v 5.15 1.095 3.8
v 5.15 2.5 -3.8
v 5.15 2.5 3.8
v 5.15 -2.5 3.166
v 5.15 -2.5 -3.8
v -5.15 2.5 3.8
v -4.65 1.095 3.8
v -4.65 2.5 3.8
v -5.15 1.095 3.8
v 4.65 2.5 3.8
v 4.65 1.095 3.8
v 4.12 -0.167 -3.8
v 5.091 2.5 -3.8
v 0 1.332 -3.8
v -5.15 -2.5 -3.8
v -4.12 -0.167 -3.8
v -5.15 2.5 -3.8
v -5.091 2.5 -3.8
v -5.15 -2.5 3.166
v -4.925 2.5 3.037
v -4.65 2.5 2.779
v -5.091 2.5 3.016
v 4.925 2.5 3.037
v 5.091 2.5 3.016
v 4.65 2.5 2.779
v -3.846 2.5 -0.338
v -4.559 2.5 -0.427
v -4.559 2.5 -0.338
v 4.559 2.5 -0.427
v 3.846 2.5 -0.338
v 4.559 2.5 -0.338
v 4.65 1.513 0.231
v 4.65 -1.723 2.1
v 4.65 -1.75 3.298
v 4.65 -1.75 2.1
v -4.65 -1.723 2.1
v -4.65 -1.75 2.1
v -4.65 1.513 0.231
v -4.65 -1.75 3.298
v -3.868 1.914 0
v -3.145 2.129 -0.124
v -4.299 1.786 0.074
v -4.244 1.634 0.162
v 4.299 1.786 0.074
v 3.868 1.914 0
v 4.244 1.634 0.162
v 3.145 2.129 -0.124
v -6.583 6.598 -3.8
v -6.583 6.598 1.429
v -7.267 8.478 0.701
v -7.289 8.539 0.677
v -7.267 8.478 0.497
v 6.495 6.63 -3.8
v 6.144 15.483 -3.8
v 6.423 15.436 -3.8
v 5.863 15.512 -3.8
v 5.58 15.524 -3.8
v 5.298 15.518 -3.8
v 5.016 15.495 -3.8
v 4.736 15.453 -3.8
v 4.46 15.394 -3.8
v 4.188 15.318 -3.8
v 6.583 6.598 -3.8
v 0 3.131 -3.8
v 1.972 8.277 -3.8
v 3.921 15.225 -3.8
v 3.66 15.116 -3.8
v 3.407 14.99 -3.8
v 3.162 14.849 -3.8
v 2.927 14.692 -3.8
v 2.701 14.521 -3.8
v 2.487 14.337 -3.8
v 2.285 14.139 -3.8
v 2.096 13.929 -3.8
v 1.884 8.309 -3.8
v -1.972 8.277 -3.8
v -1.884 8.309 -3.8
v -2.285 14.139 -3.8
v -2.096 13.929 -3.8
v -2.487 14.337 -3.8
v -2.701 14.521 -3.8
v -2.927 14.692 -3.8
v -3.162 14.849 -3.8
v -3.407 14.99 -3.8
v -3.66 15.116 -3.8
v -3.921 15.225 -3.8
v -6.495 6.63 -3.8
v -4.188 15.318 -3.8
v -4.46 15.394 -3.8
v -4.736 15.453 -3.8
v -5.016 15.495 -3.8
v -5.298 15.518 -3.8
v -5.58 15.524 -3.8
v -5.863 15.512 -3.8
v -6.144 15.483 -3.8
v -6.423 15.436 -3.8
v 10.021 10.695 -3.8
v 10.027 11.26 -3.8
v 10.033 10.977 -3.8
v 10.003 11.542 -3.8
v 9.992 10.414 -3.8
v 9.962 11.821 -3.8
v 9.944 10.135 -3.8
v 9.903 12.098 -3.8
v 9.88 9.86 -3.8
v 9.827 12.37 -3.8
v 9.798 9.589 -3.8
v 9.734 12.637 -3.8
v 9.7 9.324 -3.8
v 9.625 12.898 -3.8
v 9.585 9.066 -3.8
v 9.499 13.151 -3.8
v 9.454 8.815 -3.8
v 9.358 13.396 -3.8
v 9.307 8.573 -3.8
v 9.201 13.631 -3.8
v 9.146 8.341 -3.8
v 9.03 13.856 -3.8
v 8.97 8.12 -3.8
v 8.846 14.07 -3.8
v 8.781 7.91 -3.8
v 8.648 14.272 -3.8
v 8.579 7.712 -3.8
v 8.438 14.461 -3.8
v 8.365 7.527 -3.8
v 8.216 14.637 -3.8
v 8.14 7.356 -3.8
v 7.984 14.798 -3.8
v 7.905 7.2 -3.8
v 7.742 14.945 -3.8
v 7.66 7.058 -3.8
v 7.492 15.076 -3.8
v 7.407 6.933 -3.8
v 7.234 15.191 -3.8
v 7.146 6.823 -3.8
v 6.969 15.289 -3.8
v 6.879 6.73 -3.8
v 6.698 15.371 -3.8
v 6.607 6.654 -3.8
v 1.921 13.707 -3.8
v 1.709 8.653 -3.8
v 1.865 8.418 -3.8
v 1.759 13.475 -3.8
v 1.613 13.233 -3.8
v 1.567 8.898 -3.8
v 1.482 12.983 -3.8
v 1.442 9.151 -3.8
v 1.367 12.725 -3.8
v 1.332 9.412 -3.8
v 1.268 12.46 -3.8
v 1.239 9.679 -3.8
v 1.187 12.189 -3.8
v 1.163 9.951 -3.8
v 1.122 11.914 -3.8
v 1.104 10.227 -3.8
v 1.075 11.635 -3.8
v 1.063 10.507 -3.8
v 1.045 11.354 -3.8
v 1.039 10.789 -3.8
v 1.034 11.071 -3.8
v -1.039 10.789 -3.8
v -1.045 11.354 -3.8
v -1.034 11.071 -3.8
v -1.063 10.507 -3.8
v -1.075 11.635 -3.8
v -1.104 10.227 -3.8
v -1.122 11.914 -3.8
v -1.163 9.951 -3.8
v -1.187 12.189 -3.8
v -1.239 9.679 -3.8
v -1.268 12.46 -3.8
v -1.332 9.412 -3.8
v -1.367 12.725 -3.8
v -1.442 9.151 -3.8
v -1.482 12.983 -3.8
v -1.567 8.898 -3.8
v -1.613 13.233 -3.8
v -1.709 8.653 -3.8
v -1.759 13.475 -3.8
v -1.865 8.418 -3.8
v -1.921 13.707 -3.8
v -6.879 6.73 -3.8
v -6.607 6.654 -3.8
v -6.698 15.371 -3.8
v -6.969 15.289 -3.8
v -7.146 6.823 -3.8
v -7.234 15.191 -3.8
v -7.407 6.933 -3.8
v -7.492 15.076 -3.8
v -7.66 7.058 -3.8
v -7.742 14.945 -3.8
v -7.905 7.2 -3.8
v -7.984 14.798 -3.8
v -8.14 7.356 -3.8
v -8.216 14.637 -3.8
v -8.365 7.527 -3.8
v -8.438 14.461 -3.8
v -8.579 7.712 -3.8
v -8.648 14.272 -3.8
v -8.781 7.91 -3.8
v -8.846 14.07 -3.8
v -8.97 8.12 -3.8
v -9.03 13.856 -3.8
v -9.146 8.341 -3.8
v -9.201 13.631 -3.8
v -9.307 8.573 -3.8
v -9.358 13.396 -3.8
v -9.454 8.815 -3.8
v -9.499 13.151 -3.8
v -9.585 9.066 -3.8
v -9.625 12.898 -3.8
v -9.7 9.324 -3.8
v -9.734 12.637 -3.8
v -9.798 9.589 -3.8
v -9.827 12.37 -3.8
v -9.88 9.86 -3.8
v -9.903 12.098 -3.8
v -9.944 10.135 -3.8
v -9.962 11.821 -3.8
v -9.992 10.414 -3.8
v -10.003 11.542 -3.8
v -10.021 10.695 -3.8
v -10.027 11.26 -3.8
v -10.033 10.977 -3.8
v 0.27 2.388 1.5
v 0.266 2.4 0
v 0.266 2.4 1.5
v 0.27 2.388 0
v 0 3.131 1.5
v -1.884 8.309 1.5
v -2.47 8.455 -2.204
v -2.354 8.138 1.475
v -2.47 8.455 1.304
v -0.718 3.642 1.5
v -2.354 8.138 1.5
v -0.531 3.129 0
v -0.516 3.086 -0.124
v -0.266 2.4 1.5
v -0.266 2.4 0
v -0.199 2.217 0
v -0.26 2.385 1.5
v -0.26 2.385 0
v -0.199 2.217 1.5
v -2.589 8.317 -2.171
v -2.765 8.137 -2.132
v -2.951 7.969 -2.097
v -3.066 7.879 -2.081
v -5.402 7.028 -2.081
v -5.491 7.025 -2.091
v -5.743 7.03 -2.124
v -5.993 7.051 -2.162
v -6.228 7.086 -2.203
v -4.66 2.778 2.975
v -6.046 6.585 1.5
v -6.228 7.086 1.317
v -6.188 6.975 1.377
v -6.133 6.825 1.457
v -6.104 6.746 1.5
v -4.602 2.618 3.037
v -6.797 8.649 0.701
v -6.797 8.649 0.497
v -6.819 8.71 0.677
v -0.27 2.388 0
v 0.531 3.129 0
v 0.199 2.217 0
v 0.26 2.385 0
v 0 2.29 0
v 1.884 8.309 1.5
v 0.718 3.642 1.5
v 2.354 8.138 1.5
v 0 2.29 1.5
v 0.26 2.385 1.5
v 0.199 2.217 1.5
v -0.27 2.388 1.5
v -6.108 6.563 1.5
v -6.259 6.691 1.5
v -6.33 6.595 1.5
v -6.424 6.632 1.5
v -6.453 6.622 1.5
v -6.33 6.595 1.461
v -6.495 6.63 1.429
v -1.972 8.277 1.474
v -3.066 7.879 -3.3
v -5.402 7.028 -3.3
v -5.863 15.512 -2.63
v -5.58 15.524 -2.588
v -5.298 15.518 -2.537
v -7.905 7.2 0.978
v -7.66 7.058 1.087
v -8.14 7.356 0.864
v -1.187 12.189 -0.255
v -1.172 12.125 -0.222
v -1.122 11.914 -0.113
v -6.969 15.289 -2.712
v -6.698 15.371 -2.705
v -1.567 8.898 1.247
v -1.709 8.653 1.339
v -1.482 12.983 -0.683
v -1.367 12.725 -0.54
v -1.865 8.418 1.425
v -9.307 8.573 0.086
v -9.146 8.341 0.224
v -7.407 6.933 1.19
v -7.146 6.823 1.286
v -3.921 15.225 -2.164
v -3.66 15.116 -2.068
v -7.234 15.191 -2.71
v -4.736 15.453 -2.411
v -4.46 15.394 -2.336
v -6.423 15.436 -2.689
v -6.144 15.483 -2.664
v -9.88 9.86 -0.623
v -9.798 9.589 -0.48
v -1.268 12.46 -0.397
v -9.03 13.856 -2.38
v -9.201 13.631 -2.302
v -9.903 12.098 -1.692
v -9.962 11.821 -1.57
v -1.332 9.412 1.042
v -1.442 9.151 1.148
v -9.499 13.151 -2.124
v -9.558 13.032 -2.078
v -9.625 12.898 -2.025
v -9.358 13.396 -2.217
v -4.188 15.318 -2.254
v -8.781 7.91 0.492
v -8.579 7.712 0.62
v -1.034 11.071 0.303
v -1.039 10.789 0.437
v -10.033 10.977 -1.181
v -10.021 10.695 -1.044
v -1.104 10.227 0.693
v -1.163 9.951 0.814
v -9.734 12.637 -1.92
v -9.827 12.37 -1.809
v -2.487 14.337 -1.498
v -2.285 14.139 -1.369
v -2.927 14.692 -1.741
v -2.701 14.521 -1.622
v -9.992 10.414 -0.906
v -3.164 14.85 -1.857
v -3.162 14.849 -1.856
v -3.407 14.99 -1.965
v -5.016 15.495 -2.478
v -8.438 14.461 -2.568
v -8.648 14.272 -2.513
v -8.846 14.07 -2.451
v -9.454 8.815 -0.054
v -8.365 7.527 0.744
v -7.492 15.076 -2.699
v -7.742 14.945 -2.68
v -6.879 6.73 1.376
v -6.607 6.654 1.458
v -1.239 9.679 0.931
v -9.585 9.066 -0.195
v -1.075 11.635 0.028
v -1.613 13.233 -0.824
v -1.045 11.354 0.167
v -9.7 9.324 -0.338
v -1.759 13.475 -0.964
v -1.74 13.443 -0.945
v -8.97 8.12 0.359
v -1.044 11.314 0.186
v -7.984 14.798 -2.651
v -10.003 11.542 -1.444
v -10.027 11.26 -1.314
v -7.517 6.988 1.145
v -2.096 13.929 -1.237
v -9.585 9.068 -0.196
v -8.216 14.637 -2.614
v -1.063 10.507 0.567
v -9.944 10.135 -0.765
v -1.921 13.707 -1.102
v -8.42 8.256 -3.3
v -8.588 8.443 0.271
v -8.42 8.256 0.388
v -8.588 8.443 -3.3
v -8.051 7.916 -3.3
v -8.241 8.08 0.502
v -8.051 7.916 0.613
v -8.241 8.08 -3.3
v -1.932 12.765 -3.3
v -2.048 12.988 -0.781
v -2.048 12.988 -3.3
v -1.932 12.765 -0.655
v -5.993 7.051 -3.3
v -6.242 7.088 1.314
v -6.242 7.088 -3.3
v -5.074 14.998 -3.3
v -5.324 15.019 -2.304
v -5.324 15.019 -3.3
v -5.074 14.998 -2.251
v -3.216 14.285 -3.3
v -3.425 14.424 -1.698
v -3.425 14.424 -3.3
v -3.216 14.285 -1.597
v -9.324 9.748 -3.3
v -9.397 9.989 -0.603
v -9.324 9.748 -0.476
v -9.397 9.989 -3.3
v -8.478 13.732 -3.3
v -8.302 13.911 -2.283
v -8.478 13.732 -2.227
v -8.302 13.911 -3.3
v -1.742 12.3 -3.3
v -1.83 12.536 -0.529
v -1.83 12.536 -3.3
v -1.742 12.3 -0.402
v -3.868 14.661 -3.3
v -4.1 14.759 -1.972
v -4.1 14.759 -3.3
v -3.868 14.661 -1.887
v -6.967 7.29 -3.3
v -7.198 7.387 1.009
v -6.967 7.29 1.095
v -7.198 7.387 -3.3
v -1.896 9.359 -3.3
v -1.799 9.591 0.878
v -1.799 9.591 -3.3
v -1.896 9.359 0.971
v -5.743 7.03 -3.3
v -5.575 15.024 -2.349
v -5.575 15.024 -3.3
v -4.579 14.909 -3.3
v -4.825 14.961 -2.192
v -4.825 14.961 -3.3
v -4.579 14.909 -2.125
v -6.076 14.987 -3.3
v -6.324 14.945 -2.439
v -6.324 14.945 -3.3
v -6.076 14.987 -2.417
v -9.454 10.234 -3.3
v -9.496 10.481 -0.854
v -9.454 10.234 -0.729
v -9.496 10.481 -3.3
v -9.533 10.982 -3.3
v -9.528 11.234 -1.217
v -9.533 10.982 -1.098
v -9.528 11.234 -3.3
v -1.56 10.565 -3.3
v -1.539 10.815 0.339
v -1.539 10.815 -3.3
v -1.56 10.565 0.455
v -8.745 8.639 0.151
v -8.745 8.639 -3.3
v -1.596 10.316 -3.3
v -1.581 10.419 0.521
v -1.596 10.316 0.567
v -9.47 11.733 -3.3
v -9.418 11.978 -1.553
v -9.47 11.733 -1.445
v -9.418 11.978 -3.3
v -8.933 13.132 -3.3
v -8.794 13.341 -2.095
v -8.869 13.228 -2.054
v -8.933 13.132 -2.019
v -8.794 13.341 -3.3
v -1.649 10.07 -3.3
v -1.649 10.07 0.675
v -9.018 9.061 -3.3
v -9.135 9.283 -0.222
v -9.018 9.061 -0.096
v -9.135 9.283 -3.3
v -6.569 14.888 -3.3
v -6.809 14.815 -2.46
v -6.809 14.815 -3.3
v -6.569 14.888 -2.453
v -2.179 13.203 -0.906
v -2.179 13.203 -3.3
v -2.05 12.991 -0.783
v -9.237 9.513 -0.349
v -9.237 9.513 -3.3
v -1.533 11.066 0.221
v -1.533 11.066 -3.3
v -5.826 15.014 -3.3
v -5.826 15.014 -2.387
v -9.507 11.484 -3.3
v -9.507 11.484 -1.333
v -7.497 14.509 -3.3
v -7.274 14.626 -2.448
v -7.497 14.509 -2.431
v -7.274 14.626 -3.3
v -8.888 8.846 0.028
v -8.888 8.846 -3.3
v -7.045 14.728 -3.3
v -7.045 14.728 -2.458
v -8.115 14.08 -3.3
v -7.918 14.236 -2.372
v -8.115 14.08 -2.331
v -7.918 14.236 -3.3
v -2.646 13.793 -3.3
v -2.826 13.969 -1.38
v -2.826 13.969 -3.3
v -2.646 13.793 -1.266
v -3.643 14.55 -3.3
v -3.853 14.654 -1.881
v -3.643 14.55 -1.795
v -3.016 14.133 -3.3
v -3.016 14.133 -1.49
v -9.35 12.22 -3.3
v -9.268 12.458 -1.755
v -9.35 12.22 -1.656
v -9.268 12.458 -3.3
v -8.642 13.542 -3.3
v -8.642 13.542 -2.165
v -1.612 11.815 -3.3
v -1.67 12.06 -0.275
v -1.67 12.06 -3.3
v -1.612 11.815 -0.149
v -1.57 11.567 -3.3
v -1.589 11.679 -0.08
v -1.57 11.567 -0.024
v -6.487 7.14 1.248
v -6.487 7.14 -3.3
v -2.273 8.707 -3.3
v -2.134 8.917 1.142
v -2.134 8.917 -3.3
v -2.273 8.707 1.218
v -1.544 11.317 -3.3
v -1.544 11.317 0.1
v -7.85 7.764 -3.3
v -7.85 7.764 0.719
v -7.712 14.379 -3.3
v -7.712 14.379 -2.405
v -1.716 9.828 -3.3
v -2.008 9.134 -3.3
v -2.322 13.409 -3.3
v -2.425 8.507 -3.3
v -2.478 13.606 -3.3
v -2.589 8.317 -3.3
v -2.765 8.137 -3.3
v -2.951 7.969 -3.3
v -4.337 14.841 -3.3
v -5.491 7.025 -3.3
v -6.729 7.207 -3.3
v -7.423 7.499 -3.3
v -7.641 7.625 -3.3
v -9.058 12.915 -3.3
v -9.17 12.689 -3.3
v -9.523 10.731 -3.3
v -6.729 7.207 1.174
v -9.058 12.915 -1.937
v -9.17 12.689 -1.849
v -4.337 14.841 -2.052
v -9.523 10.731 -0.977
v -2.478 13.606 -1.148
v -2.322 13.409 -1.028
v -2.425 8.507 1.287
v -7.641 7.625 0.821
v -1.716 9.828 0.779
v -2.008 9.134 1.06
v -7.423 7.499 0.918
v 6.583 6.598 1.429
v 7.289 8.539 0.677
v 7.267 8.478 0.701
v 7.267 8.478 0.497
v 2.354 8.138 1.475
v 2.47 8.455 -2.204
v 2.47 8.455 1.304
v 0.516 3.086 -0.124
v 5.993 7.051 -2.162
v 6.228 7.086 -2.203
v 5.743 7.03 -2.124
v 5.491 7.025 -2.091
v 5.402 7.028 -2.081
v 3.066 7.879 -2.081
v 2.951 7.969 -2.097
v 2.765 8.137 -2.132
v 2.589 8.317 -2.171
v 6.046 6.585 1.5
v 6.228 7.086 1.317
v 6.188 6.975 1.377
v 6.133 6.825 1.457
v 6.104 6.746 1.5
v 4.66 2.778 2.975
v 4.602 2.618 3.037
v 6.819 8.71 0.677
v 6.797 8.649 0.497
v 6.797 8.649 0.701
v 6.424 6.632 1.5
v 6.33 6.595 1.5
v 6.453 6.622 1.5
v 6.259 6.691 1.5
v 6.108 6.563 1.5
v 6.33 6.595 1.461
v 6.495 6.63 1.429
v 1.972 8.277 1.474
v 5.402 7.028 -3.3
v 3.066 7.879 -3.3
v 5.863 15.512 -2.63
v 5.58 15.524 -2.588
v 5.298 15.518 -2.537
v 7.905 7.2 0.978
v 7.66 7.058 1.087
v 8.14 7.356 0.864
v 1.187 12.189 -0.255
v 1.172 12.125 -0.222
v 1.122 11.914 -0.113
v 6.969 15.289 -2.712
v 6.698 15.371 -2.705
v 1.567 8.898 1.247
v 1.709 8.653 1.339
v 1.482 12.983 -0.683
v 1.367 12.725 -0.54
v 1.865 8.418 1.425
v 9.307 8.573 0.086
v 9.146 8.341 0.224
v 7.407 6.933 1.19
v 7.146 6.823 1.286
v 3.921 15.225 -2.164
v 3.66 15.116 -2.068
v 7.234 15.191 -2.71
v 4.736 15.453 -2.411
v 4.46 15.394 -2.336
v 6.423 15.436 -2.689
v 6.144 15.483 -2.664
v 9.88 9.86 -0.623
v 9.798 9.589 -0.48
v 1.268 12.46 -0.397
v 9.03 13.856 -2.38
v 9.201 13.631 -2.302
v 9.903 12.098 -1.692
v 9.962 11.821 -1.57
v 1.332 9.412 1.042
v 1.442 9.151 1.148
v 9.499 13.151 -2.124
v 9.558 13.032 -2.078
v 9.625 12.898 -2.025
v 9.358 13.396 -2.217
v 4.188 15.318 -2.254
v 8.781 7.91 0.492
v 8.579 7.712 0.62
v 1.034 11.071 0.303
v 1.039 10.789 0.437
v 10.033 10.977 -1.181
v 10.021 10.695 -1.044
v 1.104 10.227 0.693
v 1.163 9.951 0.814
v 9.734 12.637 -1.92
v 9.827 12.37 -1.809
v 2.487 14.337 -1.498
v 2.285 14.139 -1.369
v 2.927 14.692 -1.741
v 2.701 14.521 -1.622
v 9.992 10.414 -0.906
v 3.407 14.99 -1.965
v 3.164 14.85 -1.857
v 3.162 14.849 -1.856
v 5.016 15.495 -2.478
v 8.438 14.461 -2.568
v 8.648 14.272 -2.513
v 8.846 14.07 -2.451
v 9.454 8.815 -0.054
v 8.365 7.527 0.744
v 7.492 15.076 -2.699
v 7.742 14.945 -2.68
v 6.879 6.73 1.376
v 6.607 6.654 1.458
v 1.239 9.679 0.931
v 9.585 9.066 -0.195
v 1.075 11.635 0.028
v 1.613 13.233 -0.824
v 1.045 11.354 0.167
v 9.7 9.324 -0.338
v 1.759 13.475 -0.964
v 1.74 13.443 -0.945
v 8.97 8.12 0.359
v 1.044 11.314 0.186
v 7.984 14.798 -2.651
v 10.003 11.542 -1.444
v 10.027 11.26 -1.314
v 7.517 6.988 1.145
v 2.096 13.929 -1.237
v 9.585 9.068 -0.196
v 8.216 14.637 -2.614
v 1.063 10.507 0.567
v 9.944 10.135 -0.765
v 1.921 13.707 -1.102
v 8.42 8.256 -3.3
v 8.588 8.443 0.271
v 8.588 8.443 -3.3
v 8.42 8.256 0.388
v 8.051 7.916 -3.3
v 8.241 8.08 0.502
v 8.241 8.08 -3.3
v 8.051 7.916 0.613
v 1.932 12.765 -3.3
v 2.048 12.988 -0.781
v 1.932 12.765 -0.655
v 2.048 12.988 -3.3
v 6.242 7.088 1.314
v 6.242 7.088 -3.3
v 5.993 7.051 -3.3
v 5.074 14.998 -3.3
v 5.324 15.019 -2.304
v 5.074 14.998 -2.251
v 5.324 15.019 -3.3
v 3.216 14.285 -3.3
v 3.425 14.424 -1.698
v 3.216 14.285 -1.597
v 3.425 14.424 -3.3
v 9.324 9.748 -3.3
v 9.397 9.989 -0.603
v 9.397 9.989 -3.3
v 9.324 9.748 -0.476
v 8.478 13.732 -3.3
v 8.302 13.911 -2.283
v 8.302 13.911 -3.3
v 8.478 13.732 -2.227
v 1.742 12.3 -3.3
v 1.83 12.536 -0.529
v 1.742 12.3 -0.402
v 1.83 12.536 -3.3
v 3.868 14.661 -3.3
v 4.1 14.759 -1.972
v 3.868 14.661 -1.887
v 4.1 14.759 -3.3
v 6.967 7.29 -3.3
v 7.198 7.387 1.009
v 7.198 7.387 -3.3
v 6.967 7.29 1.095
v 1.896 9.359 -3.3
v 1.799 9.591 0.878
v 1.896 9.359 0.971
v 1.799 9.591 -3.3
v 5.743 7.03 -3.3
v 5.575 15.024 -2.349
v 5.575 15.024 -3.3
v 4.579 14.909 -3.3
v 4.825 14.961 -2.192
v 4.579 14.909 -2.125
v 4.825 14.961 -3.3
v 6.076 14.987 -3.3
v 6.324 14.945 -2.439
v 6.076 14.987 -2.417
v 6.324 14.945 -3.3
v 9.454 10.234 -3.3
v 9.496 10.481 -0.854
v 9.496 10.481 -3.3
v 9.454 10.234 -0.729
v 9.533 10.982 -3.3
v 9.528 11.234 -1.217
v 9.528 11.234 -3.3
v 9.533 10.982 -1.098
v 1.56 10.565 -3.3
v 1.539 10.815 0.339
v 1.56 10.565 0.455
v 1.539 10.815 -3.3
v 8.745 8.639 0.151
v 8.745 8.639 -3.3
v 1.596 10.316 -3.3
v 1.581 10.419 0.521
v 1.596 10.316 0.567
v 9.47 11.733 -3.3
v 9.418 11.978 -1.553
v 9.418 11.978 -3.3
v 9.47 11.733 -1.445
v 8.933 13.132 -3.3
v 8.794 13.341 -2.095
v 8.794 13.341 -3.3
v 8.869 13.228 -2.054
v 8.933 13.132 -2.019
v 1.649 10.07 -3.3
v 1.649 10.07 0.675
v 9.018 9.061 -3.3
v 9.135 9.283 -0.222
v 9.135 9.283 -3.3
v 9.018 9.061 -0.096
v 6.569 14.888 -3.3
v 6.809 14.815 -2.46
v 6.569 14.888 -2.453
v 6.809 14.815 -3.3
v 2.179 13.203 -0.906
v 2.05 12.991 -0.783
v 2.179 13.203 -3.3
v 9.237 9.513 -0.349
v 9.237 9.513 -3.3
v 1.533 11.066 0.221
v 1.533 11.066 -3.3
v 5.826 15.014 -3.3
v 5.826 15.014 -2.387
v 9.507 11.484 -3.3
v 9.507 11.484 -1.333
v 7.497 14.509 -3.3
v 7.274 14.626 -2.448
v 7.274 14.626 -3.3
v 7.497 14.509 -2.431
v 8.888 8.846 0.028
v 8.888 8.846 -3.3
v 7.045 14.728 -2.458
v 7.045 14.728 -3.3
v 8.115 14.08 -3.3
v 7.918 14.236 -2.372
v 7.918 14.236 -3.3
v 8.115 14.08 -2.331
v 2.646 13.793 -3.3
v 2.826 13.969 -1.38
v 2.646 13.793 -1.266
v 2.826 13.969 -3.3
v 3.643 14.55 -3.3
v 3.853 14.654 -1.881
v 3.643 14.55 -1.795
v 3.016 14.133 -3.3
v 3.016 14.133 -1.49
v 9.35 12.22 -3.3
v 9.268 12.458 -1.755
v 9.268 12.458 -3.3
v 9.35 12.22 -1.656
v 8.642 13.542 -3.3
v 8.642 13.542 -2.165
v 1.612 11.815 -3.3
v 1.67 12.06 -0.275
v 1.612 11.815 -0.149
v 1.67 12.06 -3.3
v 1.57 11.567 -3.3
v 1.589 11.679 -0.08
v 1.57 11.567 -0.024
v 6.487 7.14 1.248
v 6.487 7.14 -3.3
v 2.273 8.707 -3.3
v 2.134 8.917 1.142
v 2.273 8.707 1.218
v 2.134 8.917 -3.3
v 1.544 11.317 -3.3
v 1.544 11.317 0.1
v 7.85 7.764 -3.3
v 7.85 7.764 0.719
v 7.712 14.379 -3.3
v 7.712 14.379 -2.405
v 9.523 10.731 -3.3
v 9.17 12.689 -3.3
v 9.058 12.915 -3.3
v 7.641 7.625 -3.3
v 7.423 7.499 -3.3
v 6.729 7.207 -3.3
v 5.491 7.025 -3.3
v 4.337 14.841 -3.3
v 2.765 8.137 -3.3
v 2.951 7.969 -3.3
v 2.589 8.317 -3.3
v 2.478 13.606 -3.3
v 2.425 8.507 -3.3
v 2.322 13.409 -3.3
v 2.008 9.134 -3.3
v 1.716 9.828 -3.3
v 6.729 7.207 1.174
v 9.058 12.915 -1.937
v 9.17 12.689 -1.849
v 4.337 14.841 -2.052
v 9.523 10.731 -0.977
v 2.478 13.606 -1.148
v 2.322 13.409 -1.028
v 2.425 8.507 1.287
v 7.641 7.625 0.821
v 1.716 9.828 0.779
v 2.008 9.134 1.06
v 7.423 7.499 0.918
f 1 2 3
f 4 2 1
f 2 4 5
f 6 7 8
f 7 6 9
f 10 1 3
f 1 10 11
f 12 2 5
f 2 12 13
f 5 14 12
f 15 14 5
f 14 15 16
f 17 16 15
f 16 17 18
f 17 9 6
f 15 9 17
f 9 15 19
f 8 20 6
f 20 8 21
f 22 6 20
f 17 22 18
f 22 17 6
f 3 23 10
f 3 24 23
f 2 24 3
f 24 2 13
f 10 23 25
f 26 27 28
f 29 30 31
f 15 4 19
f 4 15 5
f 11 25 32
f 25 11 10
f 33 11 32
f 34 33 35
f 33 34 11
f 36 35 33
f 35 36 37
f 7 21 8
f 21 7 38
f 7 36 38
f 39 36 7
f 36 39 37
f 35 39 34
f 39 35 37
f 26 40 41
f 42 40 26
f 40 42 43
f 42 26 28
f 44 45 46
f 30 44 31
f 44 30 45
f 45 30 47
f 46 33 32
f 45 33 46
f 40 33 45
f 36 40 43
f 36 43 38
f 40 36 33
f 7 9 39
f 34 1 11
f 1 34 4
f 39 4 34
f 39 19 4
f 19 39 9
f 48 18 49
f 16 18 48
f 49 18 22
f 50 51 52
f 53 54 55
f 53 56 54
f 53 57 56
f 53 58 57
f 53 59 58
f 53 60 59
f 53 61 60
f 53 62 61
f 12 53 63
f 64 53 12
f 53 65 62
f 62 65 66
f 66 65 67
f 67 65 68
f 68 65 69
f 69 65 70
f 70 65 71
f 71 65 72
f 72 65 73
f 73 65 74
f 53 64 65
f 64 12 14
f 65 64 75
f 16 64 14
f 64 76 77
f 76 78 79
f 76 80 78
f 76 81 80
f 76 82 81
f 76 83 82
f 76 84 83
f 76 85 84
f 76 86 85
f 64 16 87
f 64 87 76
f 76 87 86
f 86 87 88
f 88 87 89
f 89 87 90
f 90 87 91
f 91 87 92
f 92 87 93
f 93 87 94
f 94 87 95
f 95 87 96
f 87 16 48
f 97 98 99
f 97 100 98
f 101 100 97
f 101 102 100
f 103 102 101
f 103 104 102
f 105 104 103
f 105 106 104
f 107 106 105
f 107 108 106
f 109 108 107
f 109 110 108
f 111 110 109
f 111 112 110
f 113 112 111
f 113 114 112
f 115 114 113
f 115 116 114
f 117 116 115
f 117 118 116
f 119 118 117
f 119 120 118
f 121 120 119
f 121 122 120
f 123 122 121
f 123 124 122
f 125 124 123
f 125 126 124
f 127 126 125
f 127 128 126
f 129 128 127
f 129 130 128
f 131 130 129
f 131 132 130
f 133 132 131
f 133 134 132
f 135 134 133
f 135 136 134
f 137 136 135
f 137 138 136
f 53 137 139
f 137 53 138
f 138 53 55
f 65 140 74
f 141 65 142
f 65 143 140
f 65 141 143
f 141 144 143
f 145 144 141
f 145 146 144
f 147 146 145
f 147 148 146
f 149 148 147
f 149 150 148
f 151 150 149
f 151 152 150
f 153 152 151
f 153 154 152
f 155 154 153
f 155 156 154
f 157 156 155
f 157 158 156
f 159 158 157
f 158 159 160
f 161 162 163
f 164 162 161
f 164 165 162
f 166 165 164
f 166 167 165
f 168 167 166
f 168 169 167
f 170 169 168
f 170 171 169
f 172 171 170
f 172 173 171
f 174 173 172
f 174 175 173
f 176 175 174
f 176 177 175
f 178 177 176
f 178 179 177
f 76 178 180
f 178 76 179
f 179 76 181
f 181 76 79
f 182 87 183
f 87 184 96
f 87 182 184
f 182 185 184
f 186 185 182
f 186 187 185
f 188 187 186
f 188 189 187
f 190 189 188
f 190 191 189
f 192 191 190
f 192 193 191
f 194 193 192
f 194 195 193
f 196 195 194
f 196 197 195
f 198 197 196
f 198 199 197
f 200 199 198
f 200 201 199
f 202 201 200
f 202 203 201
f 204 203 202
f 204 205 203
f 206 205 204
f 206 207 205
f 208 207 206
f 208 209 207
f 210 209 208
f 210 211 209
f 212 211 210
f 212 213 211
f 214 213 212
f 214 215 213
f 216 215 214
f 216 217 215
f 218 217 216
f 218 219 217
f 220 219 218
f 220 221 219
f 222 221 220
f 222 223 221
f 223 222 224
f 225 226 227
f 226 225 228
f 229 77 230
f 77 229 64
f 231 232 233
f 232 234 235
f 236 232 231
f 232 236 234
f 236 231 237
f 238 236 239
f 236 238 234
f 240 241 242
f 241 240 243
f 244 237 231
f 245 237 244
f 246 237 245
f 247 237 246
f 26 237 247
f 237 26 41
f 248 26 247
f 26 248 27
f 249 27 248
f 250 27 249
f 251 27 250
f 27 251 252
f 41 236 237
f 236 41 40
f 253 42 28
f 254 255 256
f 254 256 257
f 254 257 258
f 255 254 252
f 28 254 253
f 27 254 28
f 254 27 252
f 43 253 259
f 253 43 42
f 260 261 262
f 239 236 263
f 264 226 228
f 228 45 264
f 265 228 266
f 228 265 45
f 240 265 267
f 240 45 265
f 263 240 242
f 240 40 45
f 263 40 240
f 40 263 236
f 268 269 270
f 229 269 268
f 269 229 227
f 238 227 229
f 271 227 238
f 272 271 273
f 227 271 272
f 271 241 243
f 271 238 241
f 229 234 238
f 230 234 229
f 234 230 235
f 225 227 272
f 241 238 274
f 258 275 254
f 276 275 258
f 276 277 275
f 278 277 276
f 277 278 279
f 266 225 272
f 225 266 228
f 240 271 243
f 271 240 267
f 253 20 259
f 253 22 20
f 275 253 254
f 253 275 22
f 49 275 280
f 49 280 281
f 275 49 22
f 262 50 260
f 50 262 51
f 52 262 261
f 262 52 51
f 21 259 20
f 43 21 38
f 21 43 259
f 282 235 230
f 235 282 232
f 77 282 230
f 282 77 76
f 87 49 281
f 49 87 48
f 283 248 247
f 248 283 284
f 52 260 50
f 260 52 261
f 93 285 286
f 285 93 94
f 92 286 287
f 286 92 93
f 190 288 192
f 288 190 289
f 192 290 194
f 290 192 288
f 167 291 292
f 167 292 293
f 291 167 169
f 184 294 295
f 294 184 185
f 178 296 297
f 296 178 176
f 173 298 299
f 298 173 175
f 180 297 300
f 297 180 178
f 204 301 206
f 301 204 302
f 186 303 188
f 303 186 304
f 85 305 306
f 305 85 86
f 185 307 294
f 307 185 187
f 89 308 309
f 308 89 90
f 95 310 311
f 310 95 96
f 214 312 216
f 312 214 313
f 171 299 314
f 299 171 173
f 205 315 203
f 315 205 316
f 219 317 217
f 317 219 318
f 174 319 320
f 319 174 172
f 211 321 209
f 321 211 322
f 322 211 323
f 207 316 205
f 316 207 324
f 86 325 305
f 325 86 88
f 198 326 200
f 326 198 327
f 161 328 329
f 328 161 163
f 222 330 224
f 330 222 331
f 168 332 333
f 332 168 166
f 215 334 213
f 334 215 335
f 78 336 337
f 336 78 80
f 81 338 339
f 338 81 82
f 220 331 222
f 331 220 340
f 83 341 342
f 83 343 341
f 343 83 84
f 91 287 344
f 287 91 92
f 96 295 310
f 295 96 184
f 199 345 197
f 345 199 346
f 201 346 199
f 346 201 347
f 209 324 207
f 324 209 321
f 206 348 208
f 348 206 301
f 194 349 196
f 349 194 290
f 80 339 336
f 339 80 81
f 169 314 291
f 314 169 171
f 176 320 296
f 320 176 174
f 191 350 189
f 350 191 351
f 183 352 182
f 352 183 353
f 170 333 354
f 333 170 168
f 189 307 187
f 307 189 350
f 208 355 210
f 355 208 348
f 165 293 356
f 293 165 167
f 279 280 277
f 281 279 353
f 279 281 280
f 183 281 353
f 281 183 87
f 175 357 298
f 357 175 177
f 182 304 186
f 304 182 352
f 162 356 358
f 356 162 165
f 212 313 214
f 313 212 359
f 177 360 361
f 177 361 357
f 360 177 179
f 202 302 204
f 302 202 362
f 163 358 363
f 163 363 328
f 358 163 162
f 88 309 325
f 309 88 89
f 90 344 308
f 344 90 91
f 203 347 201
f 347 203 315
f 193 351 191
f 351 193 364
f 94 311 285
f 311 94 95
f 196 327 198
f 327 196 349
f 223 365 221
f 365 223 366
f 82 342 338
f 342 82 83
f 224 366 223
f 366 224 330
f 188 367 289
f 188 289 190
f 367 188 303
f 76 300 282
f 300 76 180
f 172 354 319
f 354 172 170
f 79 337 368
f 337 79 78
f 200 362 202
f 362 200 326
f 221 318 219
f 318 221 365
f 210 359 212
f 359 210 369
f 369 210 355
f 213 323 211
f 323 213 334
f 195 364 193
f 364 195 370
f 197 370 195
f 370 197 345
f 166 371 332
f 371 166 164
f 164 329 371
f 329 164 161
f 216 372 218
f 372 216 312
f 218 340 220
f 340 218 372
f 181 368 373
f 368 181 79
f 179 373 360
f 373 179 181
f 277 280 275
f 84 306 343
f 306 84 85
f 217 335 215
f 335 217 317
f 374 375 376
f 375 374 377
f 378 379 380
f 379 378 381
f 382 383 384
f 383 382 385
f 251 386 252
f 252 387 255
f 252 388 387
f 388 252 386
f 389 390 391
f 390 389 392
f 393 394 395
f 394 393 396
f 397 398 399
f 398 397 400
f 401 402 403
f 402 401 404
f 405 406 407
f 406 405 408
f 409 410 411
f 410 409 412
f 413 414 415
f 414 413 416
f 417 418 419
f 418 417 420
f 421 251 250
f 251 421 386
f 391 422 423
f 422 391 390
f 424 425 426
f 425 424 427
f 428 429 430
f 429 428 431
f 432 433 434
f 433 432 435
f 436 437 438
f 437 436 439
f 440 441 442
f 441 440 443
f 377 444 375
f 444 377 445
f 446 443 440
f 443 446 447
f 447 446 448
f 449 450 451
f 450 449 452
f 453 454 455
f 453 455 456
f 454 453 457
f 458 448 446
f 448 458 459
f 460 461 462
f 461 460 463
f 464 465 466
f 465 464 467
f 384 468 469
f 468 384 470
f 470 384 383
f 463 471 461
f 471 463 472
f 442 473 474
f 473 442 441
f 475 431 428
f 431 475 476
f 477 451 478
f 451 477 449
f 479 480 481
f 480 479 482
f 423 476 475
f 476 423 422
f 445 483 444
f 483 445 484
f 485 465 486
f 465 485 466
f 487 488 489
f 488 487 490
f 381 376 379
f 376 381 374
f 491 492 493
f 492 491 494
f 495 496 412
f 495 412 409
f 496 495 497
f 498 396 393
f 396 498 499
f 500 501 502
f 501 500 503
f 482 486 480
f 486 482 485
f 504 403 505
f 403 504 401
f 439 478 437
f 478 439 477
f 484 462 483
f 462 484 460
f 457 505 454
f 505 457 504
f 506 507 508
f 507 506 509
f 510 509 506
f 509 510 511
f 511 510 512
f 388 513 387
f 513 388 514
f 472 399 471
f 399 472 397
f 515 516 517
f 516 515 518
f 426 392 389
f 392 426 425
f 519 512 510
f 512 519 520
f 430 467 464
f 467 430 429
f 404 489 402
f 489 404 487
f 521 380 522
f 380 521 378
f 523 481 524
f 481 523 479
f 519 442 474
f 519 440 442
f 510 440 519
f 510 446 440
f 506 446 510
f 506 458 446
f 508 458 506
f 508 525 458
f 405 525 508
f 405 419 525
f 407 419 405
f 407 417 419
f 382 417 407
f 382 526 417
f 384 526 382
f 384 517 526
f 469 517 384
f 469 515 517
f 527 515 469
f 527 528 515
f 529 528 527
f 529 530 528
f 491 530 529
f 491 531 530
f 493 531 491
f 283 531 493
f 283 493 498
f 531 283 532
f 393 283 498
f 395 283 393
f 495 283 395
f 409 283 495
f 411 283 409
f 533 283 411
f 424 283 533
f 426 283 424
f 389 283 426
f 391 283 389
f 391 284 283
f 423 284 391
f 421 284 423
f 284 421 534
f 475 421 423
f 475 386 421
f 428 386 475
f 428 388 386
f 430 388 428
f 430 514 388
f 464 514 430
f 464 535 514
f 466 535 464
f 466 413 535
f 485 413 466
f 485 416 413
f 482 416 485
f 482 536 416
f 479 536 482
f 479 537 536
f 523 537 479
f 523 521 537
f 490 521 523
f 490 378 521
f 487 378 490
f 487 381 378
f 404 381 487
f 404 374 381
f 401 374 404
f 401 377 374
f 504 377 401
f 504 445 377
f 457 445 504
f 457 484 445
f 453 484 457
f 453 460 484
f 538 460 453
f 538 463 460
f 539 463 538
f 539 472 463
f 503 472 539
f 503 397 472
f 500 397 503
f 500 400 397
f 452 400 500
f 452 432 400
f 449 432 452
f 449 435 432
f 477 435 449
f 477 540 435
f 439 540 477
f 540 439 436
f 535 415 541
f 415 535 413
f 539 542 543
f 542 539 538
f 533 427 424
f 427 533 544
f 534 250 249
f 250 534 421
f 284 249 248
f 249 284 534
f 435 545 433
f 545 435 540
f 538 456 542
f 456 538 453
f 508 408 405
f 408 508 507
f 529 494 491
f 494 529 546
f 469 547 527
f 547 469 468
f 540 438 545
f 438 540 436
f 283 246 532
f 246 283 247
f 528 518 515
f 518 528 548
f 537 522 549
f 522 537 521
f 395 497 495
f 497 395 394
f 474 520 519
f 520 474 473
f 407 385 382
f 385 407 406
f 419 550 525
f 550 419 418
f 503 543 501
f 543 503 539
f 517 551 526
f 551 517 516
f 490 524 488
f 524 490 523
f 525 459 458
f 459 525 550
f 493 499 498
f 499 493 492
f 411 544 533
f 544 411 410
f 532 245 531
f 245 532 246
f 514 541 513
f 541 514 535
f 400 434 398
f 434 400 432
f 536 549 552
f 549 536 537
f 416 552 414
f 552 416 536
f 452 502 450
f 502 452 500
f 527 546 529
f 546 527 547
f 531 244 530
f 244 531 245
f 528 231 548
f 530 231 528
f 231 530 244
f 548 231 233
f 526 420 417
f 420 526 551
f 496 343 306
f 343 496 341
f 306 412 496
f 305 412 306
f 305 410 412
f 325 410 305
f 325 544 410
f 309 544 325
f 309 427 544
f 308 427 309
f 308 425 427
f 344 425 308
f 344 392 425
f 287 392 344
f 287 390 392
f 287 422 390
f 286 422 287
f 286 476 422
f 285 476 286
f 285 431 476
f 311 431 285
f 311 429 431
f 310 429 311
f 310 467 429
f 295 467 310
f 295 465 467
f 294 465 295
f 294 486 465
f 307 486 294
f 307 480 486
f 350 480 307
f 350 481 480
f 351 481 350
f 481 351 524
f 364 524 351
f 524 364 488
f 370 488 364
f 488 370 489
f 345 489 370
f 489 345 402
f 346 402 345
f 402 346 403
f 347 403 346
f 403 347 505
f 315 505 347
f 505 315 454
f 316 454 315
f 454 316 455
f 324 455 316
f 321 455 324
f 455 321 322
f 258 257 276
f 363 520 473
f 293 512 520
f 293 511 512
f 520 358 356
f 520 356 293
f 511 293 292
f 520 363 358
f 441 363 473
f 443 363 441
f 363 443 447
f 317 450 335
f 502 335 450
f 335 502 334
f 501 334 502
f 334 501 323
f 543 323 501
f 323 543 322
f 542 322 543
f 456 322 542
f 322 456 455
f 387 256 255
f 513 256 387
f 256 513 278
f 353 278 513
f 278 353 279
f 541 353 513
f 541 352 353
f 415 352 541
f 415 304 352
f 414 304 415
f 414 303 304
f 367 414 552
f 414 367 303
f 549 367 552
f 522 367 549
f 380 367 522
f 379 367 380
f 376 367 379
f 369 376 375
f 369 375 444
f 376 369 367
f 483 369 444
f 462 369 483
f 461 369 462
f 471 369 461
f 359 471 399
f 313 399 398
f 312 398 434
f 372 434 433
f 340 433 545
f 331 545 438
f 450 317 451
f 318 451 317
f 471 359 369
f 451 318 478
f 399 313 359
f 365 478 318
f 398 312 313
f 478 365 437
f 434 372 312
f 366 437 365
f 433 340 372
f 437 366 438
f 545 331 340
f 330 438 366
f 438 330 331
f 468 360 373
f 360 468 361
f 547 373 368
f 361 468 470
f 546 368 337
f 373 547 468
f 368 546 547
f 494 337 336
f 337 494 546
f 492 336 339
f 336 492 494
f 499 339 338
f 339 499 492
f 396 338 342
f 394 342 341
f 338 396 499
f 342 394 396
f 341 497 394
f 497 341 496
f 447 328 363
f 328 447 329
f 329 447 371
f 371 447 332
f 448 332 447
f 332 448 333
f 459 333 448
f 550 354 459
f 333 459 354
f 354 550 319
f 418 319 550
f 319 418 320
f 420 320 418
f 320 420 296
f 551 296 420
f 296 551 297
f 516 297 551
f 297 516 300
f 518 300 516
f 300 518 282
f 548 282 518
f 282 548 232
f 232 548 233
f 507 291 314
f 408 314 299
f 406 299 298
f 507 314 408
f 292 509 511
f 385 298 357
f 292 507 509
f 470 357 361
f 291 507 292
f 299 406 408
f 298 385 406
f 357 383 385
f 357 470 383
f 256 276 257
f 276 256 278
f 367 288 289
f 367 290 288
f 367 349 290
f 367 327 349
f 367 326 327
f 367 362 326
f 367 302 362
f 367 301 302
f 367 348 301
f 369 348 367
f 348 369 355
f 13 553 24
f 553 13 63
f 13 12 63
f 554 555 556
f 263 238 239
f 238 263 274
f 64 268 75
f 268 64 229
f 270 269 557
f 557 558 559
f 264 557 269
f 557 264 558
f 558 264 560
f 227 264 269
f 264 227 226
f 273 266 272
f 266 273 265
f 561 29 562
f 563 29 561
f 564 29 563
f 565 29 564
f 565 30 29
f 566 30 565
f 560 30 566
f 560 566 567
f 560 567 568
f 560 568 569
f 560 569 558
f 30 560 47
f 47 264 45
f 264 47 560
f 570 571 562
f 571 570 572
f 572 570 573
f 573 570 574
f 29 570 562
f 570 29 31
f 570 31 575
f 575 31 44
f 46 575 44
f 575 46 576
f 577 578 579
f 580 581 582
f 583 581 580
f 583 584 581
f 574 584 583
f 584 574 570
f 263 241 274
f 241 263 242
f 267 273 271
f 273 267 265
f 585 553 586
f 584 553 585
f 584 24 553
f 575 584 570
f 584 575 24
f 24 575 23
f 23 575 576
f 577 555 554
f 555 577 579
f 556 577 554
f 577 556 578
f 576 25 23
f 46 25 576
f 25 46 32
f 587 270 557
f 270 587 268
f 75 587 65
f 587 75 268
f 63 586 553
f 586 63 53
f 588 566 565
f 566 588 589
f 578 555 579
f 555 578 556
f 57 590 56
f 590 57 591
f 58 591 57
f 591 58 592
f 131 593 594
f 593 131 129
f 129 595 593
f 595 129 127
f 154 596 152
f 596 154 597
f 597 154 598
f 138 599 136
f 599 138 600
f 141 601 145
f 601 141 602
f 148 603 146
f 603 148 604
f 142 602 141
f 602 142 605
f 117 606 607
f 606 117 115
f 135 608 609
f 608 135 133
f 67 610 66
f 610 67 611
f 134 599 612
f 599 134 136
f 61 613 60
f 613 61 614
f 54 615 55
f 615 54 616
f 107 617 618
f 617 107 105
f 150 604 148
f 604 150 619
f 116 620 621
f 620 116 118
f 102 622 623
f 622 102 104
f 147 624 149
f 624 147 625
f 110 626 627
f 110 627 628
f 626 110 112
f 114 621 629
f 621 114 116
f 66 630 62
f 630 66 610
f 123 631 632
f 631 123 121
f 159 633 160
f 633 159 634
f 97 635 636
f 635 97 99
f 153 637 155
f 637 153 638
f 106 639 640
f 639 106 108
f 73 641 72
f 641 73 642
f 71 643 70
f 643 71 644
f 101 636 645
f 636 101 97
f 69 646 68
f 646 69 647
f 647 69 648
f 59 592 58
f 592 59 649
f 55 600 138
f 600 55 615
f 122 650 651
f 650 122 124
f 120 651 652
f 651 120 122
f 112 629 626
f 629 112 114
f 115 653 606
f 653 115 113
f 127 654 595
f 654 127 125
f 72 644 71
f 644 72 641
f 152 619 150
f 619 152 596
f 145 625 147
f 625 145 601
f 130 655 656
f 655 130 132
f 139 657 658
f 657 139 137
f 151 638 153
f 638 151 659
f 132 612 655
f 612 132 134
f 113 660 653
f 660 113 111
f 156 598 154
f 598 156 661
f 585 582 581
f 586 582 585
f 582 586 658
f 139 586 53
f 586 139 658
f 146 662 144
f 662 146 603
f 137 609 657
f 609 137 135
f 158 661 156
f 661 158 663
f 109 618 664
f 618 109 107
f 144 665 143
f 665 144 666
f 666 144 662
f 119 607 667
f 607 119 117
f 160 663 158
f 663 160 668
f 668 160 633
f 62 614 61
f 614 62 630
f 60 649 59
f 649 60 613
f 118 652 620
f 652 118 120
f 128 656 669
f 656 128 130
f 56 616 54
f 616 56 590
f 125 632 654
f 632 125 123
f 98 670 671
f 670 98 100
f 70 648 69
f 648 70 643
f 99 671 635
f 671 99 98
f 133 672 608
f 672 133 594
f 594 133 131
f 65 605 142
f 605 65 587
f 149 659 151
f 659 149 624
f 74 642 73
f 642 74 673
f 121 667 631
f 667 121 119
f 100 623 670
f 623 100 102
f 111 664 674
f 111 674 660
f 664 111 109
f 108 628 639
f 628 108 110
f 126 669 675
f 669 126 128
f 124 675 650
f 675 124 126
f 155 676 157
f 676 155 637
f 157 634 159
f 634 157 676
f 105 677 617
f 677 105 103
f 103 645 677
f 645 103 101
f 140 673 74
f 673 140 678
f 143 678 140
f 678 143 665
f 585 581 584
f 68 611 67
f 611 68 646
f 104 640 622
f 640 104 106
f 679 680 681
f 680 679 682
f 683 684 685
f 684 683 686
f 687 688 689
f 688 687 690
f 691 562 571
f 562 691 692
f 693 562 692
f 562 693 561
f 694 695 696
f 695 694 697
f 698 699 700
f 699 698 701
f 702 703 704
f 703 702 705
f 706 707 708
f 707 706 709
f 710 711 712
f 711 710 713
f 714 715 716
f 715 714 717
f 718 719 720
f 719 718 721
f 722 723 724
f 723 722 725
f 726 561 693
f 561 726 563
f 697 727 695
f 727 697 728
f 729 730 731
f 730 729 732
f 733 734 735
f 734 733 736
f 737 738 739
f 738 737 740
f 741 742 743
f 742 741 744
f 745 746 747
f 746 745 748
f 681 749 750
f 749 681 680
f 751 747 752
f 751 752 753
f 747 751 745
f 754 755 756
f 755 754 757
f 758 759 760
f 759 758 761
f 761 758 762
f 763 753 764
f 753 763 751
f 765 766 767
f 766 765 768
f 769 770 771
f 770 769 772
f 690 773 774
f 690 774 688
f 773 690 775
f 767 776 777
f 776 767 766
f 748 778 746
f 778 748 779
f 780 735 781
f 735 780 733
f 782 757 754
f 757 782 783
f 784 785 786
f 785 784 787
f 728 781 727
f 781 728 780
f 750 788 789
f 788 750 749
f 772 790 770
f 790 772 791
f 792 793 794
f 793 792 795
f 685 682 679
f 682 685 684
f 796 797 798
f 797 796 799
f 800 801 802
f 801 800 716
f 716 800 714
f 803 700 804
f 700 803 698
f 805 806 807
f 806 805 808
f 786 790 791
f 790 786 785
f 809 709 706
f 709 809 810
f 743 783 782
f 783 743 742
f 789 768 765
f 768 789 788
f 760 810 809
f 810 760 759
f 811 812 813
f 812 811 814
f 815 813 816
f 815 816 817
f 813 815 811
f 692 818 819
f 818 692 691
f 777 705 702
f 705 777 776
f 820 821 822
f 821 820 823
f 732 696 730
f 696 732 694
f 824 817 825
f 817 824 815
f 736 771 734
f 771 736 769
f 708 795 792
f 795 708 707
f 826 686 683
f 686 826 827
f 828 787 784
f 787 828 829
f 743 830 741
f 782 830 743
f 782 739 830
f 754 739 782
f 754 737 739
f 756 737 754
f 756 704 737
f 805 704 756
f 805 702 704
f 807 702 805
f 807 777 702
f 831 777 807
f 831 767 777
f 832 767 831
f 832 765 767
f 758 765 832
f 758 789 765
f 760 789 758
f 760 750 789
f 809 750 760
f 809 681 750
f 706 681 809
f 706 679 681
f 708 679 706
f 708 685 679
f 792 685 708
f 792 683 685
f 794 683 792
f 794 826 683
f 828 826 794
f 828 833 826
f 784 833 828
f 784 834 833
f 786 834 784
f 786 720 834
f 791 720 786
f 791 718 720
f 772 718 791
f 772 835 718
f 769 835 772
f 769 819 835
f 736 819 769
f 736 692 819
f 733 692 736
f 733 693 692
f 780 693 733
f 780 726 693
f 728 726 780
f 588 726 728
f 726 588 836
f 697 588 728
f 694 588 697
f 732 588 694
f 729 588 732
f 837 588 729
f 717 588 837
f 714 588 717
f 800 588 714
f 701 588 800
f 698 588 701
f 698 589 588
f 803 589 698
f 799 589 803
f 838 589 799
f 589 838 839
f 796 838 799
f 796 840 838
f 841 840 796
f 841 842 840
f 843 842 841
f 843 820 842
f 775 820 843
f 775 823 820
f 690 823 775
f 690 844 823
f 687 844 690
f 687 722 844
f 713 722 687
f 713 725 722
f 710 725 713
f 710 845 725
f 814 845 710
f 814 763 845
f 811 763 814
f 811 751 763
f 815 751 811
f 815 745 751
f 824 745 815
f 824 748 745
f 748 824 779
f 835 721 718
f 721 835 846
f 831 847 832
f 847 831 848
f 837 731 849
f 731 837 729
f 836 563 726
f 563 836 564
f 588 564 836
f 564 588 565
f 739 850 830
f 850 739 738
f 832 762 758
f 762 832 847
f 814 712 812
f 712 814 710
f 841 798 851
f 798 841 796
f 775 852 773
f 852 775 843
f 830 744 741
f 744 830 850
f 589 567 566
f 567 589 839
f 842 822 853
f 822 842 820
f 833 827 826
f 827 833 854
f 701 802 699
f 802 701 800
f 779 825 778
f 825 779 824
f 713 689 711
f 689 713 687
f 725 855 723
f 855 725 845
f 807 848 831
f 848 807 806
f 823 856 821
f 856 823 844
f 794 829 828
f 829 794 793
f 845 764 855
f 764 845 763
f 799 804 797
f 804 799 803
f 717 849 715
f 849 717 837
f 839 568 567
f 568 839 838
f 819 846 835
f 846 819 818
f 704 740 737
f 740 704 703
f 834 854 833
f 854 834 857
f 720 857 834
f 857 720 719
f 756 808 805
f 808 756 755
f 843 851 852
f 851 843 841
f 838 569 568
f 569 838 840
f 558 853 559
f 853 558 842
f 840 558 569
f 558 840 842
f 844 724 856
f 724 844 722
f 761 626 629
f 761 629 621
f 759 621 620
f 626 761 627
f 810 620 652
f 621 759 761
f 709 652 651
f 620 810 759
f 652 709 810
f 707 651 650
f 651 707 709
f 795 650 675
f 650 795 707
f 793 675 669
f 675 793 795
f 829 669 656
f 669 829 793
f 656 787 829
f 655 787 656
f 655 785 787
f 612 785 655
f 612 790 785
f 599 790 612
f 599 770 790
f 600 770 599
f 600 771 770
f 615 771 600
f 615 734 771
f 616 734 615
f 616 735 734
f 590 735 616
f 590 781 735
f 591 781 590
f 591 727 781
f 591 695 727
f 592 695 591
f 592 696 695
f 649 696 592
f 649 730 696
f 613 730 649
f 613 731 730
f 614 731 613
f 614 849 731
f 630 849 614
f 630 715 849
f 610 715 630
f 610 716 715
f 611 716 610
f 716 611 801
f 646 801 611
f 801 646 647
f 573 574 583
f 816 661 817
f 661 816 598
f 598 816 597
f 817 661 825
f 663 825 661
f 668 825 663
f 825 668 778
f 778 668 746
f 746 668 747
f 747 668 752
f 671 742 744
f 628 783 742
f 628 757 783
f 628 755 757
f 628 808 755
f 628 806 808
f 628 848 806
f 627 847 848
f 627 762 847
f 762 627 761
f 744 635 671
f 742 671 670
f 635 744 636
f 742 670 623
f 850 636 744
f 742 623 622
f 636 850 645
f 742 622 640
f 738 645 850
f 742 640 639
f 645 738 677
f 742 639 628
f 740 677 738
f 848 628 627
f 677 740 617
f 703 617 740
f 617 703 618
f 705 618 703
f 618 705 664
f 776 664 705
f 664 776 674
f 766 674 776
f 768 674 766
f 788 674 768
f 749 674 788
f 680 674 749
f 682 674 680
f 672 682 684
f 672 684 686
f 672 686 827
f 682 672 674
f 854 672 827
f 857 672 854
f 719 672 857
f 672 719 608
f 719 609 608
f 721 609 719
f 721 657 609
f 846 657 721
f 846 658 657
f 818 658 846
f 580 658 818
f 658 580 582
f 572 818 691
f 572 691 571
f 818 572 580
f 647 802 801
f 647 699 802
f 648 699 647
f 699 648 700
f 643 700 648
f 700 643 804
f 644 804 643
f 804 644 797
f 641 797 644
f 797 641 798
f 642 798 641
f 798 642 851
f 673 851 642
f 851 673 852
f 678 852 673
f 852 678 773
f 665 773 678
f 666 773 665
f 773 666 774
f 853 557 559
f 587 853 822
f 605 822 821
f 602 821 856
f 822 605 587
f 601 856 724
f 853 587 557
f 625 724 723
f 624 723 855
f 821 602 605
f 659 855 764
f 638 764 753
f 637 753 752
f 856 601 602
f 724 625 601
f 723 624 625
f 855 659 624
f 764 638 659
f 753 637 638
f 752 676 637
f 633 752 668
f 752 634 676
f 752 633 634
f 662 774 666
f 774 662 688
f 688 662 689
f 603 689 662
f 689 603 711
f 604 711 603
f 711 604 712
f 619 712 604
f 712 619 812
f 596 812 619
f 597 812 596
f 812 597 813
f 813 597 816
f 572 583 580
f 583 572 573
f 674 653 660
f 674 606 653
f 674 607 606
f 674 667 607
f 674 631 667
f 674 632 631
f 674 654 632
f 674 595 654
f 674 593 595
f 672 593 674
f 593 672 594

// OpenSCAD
$fn=100;  // fineness

wall=0.5; // wall thickness
bw=10.3; // back width
bh=7.6;  // back height
bd=5;    // back depth

bowlr=4.5;

//back side
difference(){
    cube([bw,bd,bh],true);

    // remove top inside layer
    translate([0,1,3.5])
        cube([bw-2*wall,6-wall,2.8], true);

   // create slope for food
   translate([0,1.95,2])
   rotate([-30,0,0])
   color([0,0,1]) 
    cube([10.3-2*wall,7-wall,3.5],true);

   // lower back edge
   color([1,0,0])
   translate([0,-wall*1.3,4])
   rotate([10,0,0])
   cube([bw+1,bd-1,1], true);

}

//bowls
bowlh=5.3;
bowlf=1;  //height of bowl front
module bowl(radius){
    
  union(){  
  difference(){
    //create hollow cylinder
    cylinder(bowlh,bowlr,bowlr);
    translate([0,0,wall])
    cylinder(1.1*bowlh,bowlr-wall,bowlr-wall);  
     
    //slice off   
    rotate([-10,25,0])
    translate([0,0,3])
    cylinder(12,bowlr*1.5, bowlr*1.5);
  }    
  
  difference(){
  cylinder(bowlf,bowlr,bowlr);
      
  translate([0,0,wall])    
  cylinder(bowlf,bowlr-wall,bowlr-wall);    
  }
  }
}


module slide(h,w,d,slope){
  difference(){
  union(){
  difference(){
  union(){
  difference(){
      
   union(){    
    cube([h,w,d]);
      
    //color([1,1,0])
    //translate([2.5,-4,0])
    //rotate([0,0,-113])
    //bowl(bowlr);    
   }
 
   //remove slope    
   rotate([slope,0,0]) 
   translate([wall,0,1])   
   cube([h-2*wall,w-2*wall,d-2*wall]);
      
    
   //cut off top
   color([0,1,1])
   translate([-0.1,0,3.8])    
   cube([h*1.5,w*1.5,d*1.1]);
  }
  
  //add walls
  union(){
  cube([wall,8.1,5.3]);
 
  translate([4.5,1,1])
  rotate([20,0,0])
  cube([wall,6.9,3.7]);
  }
  }
  //shorten
  translate([-0.5,-0.2,-1])
  cube([6,2,8]);
  }
   color([1,1,0])
   translate([2.5,-2.0,0])
   rotate([0,0,-113])
   bowl(bowlr);  
  }
   //remove slope    
   rotate([slope,0,0]) 
   translate([wall,0,1])   
   cube([h-2*wall,w-2*wall,d-2*wall]);
  }
}

//slides
translate([-2.5,10,-3.8])
rotate([0,0,200])
slide(5,9,5,20);

mirror([1,0,0])
translate([-2.5,10,-3.8])
rotate([0,0,200])
slide(5,9,5,20);
